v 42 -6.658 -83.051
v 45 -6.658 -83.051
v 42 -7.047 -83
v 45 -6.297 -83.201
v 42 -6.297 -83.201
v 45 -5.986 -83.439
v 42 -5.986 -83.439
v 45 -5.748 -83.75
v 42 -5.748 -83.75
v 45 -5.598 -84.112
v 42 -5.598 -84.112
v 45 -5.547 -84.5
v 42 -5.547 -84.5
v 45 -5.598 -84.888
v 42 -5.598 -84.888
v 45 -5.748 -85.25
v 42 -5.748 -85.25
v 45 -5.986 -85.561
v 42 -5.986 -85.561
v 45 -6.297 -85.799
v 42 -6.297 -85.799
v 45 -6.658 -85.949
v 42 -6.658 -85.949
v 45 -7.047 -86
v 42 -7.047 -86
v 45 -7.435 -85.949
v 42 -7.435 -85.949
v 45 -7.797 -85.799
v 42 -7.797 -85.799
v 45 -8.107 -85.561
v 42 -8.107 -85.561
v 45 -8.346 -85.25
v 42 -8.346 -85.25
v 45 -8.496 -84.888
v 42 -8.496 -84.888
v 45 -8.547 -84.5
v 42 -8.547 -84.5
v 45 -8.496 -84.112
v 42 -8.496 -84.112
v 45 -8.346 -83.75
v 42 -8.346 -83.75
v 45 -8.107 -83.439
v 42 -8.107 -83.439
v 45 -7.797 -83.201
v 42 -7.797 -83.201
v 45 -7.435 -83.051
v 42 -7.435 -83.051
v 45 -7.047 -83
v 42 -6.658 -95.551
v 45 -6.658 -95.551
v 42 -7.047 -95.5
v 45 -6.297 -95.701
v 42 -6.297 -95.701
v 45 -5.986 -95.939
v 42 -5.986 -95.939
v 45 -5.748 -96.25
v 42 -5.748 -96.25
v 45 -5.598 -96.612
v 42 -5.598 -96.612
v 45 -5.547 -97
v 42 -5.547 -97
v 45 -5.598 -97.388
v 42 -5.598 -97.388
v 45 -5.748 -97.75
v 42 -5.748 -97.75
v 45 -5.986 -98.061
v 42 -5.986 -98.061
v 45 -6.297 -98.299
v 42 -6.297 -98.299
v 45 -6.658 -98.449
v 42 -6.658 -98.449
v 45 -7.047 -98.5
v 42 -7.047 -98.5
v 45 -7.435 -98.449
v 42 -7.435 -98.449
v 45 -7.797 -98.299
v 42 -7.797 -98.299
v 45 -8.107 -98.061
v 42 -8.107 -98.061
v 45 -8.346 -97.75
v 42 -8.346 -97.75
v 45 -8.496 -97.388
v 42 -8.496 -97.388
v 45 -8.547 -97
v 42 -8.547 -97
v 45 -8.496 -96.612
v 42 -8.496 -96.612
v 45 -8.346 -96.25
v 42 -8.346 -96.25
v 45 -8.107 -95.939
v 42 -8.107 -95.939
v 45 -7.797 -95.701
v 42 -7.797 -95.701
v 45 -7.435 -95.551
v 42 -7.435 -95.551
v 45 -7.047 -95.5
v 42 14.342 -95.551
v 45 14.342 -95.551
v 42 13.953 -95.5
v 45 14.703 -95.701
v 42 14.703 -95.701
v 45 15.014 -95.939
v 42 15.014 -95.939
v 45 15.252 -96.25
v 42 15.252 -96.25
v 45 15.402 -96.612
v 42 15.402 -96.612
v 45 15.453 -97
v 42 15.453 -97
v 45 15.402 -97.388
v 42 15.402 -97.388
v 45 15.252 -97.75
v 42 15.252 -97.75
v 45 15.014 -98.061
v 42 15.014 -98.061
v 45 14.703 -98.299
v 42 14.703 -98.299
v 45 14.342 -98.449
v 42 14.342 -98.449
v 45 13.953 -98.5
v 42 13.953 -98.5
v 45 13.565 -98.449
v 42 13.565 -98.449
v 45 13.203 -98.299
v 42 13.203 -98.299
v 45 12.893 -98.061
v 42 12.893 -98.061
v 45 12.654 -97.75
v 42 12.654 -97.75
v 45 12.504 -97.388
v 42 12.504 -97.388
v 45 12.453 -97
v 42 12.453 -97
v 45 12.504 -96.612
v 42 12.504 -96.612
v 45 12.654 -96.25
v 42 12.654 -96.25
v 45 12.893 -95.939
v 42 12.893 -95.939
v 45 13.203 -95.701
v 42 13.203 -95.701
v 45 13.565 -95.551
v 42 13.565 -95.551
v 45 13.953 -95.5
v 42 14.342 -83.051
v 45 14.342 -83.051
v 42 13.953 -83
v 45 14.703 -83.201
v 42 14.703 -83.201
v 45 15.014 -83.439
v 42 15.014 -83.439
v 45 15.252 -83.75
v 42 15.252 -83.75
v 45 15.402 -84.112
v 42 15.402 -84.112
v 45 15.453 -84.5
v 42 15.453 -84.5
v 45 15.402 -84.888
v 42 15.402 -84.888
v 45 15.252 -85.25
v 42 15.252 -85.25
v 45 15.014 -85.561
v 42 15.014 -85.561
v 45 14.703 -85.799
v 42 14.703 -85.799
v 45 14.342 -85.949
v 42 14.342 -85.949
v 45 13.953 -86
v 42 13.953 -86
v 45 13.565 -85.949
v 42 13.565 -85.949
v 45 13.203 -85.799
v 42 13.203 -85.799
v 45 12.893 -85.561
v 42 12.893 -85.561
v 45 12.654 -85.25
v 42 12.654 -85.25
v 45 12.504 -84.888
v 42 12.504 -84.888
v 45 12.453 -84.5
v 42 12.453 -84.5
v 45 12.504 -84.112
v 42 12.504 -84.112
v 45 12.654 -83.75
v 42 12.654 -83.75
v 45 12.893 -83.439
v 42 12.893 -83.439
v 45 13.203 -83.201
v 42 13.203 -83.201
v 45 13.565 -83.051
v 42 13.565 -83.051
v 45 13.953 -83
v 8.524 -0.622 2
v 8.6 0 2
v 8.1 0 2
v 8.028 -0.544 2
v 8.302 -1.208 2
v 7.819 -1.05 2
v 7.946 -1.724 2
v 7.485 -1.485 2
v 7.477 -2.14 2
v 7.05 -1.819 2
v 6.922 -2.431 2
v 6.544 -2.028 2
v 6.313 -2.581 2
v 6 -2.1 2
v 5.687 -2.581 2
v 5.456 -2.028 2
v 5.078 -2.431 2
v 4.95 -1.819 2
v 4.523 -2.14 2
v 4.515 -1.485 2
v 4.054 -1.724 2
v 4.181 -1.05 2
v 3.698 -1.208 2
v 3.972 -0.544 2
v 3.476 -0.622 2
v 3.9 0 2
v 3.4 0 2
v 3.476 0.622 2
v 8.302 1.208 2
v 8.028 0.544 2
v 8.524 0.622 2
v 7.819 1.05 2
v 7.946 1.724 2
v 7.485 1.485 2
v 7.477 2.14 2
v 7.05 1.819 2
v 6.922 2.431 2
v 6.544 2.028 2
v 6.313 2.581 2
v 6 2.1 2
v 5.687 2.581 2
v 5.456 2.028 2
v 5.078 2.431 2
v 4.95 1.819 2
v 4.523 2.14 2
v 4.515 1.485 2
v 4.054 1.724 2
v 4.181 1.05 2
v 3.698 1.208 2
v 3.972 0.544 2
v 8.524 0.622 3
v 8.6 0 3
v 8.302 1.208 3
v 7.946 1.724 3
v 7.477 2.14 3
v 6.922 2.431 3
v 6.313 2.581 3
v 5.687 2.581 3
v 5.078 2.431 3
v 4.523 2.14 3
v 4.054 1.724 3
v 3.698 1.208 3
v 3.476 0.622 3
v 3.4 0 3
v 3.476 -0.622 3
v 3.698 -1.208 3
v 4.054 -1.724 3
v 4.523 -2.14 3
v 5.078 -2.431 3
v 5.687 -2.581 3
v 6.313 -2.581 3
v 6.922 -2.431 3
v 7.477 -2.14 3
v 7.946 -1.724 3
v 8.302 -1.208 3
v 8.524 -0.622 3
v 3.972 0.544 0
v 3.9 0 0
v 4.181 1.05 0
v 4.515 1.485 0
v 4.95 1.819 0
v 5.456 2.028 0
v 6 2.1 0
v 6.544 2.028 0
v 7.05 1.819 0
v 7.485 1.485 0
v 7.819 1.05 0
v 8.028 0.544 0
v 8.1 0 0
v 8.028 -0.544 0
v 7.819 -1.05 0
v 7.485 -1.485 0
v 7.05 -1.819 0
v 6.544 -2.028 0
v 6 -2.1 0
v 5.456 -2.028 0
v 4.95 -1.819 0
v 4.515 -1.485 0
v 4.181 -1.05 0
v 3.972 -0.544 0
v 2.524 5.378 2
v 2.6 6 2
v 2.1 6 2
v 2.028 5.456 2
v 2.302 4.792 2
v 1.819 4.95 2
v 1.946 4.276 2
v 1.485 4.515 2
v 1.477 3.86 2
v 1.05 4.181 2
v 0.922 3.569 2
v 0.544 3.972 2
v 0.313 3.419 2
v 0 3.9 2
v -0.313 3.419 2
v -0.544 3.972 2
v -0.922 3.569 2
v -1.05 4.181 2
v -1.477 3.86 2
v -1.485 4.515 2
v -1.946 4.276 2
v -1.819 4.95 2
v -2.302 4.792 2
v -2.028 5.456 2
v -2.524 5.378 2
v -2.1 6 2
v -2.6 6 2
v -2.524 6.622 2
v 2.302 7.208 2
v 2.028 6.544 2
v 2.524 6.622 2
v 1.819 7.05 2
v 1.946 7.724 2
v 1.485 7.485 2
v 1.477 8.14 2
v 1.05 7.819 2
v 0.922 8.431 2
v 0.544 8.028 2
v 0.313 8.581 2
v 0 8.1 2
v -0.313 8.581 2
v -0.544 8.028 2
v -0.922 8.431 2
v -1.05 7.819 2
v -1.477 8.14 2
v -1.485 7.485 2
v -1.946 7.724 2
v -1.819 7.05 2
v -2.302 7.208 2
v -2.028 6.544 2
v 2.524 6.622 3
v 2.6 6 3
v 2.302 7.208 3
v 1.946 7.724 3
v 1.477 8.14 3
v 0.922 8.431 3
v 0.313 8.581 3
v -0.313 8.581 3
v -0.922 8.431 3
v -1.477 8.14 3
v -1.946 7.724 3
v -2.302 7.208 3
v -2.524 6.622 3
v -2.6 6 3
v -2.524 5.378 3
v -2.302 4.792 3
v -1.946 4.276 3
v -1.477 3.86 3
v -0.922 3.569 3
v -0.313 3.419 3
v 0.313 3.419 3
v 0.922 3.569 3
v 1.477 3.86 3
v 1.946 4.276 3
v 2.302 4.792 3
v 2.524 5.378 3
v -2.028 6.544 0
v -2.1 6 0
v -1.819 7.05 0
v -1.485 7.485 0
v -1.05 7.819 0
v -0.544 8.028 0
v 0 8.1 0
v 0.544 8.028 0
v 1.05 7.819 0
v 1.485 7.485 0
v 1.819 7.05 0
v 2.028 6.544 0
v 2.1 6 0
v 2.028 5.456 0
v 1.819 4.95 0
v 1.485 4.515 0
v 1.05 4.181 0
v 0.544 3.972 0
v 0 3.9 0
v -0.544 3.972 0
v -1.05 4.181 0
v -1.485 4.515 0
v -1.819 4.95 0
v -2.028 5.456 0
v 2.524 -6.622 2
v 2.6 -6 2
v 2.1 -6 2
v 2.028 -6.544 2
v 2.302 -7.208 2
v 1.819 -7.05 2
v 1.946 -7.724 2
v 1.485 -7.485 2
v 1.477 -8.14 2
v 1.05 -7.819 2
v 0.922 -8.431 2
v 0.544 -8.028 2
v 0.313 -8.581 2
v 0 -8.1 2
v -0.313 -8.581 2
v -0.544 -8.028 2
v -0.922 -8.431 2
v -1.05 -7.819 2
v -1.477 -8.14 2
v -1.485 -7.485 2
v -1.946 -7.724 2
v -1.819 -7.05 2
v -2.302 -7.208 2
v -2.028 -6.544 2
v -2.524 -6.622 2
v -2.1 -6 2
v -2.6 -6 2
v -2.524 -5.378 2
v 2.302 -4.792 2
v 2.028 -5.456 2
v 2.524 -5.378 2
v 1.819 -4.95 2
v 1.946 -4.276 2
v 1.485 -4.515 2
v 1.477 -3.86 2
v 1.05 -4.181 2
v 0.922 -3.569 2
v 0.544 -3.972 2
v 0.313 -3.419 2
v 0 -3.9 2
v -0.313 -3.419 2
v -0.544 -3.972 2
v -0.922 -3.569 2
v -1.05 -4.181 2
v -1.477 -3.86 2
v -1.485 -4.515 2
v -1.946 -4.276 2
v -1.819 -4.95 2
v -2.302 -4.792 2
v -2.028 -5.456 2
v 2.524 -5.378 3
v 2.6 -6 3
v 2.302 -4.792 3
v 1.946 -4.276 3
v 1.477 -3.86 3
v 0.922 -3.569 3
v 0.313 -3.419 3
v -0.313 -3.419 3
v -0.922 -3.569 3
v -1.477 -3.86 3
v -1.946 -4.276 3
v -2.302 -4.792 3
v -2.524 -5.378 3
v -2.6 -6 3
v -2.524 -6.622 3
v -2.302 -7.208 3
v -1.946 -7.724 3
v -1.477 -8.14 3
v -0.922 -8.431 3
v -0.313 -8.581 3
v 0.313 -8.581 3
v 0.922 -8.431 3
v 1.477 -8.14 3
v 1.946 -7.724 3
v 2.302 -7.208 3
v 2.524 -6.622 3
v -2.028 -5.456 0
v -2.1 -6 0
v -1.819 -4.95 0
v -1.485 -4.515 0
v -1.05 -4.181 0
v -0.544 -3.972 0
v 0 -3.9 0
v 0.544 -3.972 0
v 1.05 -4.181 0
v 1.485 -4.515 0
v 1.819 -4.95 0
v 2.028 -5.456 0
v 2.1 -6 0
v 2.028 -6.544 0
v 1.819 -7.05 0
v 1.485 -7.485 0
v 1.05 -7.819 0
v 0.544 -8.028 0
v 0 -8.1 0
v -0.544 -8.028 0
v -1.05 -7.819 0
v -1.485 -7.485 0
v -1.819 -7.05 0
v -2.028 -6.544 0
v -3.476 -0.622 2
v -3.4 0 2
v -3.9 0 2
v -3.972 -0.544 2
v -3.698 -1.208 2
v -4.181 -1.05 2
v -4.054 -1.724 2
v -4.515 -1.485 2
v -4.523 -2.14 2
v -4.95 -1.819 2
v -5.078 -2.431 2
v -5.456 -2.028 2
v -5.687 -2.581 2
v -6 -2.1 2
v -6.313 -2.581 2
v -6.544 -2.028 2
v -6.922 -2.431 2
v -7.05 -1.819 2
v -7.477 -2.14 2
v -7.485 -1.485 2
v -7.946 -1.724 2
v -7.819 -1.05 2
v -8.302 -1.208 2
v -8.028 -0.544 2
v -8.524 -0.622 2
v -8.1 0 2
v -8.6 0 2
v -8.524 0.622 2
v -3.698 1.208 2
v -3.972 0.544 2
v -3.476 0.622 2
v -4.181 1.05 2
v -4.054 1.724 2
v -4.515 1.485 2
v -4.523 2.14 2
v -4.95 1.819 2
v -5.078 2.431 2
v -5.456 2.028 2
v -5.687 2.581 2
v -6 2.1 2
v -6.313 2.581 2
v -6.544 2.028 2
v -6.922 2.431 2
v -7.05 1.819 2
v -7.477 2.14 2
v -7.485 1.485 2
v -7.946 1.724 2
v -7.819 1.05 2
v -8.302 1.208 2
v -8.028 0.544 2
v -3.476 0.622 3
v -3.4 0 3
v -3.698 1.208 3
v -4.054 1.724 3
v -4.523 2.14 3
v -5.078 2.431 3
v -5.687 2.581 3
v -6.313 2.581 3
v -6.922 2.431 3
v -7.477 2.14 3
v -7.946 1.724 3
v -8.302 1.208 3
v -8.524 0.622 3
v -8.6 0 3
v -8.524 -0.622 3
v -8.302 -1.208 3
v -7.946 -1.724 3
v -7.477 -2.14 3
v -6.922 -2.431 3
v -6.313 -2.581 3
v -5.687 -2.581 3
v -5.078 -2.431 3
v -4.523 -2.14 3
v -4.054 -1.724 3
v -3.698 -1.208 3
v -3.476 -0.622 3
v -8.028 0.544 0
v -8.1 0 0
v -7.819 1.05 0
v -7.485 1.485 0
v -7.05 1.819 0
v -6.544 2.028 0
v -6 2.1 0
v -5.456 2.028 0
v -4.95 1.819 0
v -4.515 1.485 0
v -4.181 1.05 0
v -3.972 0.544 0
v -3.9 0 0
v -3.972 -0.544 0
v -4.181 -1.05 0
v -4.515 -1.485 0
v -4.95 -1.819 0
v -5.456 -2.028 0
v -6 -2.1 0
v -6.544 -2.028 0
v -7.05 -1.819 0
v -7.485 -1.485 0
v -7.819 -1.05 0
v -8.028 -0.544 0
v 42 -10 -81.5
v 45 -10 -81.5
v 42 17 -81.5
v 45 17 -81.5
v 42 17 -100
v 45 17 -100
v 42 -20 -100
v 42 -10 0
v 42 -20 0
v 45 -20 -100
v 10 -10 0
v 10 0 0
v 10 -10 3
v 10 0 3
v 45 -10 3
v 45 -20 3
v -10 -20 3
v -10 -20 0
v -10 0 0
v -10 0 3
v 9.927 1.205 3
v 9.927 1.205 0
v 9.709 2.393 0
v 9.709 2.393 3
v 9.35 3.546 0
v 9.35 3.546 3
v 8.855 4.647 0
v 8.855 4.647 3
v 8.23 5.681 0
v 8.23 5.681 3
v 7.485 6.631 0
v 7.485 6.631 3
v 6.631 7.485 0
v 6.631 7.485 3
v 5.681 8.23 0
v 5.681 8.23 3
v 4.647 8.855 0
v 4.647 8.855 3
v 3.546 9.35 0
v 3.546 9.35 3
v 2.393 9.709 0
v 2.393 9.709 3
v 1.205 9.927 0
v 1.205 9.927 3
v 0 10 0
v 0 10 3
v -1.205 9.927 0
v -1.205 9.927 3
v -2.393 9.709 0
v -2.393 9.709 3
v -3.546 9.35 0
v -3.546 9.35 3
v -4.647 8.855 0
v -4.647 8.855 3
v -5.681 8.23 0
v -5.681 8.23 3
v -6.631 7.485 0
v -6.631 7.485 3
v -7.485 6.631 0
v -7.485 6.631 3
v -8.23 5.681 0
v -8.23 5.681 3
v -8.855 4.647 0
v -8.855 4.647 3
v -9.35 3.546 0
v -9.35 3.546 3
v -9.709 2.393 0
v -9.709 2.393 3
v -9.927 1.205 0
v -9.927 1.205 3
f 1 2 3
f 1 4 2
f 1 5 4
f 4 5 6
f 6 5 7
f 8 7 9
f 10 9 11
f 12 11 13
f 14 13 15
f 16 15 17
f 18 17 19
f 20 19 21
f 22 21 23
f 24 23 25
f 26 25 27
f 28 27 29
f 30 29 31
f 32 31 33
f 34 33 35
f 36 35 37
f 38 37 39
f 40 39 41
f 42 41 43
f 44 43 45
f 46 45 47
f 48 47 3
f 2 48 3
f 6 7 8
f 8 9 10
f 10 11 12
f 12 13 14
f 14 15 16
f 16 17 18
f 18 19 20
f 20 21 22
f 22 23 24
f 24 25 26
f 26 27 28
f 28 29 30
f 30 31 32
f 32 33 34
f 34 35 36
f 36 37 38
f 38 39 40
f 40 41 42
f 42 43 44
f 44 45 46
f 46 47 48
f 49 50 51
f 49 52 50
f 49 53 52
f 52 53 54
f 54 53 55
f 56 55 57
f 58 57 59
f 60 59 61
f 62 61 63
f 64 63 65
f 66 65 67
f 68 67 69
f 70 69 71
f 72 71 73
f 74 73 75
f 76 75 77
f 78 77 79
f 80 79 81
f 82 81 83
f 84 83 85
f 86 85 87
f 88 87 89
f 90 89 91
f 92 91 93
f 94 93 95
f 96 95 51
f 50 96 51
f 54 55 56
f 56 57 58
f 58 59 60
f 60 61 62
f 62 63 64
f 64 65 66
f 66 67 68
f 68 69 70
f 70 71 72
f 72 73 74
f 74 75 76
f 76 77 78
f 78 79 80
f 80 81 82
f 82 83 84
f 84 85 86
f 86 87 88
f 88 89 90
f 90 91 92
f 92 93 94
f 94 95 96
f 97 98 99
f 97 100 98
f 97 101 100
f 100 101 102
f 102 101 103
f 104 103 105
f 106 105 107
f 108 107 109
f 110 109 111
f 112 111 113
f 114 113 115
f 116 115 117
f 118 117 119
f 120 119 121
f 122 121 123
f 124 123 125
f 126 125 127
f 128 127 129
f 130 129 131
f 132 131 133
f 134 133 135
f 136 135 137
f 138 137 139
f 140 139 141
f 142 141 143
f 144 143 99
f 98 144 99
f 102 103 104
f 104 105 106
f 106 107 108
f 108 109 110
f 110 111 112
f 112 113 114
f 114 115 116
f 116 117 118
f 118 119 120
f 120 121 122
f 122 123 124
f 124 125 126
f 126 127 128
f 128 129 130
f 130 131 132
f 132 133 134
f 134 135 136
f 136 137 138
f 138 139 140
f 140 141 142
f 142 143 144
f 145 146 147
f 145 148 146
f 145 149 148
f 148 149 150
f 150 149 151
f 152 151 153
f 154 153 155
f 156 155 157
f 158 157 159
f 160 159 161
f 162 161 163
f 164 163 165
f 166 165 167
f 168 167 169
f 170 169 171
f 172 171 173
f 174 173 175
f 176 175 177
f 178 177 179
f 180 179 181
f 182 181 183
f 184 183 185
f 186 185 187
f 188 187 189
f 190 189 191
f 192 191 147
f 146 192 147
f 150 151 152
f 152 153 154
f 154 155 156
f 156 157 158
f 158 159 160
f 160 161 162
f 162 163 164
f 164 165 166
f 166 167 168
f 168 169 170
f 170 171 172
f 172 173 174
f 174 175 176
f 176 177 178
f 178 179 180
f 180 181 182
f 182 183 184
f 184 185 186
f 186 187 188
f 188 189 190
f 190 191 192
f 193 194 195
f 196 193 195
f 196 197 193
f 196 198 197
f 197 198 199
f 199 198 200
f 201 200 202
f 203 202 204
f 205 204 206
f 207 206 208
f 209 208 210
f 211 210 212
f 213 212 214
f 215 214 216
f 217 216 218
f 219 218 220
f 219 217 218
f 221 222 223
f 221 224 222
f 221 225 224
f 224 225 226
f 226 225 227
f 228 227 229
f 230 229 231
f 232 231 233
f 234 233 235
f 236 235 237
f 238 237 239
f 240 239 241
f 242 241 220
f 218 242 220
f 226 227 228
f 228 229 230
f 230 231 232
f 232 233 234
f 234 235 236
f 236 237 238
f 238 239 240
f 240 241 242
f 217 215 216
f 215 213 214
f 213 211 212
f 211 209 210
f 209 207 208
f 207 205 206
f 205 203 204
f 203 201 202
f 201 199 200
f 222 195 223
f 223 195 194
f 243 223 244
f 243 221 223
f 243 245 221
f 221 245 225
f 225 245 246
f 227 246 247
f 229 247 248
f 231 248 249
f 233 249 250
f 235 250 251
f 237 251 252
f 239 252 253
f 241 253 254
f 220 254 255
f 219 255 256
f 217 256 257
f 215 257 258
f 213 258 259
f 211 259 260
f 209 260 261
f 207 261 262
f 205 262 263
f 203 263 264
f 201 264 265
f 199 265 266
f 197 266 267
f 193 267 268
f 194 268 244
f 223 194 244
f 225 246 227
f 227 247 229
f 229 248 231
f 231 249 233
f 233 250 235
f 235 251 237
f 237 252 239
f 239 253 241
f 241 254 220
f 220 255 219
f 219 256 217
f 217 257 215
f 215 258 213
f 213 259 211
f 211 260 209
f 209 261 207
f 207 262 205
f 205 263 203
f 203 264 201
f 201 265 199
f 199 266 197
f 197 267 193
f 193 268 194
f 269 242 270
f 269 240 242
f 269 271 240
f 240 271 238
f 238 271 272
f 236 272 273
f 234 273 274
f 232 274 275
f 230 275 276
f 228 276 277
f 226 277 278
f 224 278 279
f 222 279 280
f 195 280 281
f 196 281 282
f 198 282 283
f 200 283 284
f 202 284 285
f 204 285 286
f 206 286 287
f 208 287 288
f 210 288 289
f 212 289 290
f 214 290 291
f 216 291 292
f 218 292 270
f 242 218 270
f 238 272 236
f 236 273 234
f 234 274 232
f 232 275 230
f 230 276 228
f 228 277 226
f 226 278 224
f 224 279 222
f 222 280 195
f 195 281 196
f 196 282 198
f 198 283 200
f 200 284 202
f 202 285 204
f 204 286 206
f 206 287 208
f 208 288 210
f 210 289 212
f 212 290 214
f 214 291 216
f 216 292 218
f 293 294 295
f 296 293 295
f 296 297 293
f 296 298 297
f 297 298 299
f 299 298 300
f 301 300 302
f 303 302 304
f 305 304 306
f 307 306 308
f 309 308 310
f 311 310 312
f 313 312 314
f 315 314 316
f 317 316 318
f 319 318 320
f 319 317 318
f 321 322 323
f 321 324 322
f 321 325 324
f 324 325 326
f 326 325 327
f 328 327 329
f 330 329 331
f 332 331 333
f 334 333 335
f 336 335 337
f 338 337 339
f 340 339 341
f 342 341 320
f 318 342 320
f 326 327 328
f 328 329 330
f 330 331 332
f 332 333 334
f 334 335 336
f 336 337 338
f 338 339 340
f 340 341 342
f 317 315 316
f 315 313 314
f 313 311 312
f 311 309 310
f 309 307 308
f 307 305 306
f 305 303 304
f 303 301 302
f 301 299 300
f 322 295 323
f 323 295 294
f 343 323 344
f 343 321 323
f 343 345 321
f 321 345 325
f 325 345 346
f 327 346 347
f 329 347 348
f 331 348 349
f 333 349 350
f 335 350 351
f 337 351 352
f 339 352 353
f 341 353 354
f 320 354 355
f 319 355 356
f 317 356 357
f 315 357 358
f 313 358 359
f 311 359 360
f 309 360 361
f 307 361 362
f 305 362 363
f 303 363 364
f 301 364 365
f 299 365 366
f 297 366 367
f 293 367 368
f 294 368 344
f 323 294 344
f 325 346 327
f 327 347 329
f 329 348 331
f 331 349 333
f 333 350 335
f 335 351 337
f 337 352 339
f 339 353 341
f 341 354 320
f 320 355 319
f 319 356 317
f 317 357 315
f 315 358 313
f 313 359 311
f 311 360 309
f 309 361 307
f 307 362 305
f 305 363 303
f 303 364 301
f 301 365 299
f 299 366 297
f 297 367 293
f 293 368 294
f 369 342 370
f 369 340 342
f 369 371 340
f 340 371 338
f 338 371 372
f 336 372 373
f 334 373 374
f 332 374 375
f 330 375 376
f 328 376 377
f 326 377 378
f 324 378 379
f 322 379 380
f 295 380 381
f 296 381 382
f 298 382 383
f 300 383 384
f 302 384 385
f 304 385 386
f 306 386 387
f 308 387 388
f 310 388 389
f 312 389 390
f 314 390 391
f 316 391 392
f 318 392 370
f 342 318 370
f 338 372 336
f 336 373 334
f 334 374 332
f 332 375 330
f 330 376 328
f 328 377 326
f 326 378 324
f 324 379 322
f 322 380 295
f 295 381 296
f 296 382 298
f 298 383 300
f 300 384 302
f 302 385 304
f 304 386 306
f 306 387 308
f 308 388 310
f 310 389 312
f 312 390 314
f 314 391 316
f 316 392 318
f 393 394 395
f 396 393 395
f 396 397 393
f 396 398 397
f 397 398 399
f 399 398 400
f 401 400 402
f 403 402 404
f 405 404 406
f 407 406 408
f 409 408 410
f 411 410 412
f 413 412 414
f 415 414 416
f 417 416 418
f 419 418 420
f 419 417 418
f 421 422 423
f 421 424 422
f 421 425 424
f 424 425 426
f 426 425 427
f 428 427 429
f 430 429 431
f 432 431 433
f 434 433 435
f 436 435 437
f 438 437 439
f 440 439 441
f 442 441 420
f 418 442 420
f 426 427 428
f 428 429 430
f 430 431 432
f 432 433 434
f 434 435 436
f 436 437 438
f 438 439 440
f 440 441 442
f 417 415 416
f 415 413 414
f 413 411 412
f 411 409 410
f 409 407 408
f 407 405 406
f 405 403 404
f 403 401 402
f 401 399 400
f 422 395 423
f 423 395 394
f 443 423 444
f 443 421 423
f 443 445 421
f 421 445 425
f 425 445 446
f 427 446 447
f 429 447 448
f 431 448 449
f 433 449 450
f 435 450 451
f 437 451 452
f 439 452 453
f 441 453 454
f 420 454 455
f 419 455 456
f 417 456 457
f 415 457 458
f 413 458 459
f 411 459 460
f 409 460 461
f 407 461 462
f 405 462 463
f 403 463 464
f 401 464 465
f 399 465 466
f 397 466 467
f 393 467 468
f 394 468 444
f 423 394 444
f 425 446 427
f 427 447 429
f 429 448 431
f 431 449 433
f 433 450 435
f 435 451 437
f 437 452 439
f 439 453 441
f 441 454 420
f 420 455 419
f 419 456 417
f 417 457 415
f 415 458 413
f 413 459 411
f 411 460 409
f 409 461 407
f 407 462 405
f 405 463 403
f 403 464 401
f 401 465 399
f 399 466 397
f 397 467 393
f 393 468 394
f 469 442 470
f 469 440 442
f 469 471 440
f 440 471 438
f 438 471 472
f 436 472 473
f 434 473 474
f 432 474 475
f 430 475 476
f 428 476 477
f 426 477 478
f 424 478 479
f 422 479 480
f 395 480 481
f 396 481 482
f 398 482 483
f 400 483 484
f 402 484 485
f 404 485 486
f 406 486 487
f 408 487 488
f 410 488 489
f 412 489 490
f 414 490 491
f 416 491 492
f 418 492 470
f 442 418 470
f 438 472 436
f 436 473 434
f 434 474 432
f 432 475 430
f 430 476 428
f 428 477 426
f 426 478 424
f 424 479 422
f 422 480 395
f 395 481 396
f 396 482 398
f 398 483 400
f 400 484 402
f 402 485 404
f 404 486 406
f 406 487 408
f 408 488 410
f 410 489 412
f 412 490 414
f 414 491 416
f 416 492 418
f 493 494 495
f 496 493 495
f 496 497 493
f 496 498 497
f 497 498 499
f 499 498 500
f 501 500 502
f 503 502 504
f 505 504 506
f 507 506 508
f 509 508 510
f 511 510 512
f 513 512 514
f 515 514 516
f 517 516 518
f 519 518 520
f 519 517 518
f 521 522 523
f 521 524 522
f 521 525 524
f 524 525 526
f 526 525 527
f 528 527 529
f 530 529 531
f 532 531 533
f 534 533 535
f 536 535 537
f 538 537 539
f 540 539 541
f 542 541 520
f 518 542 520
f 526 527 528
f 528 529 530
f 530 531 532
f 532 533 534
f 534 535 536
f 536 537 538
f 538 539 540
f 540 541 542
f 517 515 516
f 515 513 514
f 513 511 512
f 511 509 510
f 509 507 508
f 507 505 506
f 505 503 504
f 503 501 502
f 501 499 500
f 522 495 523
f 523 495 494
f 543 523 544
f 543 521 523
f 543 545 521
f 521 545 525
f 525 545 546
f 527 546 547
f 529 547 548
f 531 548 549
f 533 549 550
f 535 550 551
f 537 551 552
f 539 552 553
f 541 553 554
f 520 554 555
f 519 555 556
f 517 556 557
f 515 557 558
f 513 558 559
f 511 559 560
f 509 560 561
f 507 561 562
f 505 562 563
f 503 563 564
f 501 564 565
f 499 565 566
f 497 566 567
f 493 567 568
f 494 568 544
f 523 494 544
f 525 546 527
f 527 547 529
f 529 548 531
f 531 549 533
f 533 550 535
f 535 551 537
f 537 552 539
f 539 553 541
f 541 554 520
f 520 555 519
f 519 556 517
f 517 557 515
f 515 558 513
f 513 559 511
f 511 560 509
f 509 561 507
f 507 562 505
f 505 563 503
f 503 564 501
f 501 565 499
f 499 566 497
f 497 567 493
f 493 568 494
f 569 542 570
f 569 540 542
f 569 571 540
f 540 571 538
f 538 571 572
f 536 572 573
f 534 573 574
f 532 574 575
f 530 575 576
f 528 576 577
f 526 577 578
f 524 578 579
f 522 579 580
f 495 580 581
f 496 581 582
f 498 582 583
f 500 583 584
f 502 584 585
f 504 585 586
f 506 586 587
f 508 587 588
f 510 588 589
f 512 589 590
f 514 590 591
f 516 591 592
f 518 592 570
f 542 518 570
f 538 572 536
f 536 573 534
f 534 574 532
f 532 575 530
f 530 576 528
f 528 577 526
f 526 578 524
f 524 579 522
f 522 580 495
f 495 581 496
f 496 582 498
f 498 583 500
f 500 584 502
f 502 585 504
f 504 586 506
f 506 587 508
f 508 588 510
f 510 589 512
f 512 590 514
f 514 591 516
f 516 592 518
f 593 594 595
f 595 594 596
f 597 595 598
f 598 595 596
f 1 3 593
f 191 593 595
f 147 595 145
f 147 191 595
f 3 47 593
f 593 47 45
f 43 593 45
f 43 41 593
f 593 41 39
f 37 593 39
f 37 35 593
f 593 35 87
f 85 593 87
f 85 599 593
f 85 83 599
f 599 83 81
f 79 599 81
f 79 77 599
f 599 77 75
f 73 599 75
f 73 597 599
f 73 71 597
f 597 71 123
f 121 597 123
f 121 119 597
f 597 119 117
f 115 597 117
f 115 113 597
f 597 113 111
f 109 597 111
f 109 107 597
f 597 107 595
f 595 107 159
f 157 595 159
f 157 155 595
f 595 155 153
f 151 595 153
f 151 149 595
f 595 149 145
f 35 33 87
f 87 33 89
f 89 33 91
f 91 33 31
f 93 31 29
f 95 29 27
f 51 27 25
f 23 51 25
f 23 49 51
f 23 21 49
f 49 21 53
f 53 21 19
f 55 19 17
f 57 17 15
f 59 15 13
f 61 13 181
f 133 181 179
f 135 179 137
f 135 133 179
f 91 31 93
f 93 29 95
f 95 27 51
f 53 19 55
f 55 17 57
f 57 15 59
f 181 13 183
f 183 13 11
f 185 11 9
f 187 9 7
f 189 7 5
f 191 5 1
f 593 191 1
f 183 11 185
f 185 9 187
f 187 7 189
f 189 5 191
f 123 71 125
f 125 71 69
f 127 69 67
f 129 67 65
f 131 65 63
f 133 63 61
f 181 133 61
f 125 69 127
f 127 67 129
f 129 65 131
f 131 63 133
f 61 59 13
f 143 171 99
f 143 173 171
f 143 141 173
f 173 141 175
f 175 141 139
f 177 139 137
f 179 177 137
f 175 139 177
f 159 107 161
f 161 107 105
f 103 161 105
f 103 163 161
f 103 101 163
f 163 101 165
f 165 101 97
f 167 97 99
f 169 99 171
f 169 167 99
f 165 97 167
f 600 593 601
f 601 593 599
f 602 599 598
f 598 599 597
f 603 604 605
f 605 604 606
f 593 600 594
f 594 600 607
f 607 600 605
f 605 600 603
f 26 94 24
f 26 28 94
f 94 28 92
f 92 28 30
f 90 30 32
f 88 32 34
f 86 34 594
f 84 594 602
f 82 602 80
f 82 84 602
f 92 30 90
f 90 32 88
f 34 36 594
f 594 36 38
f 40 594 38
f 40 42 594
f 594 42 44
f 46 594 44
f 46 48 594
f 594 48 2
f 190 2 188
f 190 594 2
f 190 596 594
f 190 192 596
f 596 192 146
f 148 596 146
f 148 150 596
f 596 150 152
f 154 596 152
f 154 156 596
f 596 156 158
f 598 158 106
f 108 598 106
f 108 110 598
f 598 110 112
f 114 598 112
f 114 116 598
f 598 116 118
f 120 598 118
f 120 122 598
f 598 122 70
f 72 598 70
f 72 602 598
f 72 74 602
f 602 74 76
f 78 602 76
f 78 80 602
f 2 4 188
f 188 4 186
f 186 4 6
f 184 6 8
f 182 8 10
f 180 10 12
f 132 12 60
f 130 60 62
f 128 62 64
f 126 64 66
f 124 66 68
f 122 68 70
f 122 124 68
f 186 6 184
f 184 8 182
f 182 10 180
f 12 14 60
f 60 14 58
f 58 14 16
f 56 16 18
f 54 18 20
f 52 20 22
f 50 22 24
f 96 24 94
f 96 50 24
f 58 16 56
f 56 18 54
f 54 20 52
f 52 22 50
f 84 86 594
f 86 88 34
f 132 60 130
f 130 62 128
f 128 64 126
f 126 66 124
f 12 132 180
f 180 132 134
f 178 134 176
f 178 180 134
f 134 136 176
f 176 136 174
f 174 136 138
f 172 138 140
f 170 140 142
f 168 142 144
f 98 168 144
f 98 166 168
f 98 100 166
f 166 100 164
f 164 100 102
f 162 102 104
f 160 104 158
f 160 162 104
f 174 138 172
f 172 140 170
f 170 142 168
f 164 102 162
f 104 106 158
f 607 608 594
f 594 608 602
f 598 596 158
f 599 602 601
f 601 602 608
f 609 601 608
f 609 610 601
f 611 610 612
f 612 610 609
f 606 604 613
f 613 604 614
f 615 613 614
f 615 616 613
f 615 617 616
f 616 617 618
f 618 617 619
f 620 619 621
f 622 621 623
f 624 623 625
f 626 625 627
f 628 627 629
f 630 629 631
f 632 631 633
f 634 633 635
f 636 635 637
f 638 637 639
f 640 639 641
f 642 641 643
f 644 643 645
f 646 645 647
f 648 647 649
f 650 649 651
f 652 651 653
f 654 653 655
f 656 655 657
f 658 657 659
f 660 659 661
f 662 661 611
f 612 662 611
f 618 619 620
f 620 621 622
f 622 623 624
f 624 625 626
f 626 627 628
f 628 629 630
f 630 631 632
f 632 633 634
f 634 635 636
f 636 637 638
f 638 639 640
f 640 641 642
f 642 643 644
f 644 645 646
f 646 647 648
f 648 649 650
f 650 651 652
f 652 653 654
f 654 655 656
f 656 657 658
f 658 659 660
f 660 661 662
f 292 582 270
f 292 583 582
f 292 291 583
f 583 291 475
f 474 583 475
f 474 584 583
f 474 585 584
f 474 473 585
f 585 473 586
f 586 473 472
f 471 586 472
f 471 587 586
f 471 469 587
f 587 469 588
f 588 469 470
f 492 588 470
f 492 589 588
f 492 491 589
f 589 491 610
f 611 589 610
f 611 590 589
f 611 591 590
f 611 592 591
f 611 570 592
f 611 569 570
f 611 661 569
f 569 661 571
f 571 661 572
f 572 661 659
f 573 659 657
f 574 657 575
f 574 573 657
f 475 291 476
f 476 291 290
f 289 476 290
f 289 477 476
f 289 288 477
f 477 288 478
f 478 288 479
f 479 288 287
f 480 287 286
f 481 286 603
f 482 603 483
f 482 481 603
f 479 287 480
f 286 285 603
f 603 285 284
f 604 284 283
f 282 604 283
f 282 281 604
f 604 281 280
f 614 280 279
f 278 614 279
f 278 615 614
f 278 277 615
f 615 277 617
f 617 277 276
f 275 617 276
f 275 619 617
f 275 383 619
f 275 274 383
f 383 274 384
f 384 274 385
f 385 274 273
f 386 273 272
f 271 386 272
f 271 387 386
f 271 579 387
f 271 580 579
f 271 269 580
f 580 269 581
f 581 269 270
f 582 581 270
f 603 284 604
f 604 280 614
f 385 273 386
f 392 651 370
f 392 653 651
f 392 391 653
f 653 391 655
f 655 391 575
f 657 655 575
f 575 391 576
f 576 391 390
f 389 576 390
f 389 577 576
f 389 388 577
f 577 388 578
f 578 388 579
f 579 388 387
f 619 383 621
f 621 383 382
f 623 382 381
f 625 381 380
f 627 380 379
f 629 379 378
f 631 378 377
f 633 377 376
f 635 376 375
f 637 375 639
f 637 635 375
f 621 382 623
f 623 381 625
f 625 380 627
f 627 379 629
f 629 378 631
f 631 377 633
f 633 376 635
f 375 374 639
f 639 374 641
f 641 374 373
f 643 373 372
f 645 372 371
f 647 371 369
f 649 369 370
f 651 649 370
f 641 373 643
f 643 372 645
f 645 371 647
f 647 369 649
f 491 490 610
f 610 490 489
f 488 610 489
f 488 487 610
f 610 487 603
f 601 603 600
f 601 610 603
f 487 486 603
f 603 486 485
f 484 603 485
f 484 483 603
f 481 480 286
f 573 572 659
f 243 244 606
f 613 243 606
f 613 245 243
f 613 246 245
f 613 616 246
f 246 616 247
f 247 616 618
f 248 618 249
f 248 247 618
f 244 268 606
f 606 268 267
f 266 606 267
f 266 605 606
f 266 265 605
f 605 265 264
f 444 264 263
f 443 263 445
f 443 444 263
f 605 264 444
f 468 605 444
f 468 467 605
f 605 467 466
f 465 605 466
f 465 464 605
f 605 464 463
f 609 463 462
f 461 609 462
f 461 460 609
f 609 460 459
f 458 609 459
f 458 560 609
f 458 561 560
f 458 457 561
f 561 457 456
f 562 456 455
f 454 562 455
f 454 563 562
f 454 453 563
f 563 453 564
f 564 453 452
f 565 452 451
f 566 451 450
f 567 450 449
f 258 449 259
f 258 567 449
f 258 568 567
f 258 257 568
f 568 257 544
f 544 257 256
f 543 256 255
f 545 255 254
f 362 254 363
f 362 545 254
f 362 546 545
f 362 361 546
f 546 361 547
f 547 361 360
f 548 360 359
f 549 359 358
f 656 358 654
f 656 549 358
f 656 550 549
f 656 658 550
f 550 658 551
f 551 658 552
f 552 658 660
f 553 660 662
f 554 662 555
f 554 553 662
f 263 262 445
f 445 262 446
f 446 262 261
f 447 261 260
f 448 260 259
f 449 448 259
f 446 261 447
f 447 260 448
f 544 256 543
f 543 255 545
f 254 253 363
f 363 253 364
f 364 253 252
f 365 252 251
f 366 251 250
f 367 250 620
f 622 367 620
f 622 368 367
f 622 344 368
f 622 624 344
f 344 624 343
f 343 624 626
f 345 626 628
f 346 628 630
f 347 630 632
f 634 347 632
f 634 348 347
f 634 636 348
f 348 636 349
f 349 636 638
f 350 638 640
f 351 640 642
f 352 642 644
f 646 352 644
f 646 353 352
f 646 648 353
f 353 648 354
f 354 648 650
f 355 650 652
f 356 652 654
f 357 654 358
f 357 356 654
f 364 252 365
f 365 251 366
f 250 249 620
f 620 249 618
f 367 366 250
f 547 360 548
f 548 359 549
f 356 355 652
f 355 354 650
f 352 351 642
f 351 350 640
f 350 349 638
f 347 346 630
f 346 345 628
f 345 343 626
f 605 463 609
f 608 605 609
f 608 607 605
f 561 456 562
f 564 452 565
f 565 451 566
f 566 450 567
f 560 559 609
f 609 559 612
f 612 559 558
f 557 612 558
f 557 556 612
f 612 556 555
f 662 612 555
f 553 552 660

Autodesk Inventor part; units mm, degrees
ref_plane "YZ Plane" through (0, 0, 0) normal (1, 0, 0) x (0, 1, 0)
ref_plane "XZ Plane" through (0, 0, 0) normal (0, 1, 0) x (-1, 0, 0)
ref_plane "XY Plane" through (0, 0, 0) normal (0, 0, 1) x (1, 0, 0)
sketch "Sketch1" plane through (0, 0, 0) normal (0, 0, 1) x (1, 0, 0)
  arc A0 (10, 0) -> (-10, 0) centre (0, 0) ccw
  line L0 (-10, 0) -> (-10, -20)
  line L1 (-10, -20) -> (10, -20)
  line L2 (10, -10) -> (10, 0)
  line L3 (10, -20) -> (45, -20)
  line L4 (45, -20) -> (45, -10)
  line L5 (45, -10) -> (10, -10)
  dimension "d1" = 20
  dimension "d2" = 35
  dimension "d3" = 10
extrude "Extrusion1" add sketch "Sketch1" along normal blind 3
sketch "Sketch2" plane through (0, 0, 0) normal (0, 0, -1) x (-1, 0, 0)
  line L0 (10, -20) -> (-45, -20) projected
  line L1 (-45, -10) -> (-10, -10) projected
  line L2 (-45, -20) -> (-42, -20)
  line L3 (-42, -20) -> (-42, -10)
  line L4 (-42, -10) -> (-45, -10)
  line L5 (-45, -10) -> (-45, -20)
  point P0 (0, 0)
  dimension "d6" = 3
extrude "Extrusion2" add sketch "Sketch2" along normal blind 100
sketch "Sketch3" plane through (45, -20, 3) normal (1, 0, 0) x (0, 0, -1)
  point P0 (3, 20)
sketch "Sketch4" plane through (45, -20, 3) normal (1, 0, 0) x (0, 0, -1)
  point P0 (3, 20)
sketch "Sketch5" plane through (10, -10, 3) normal (0, 1, 0) x (1, 0, 0)
  line L0 (32, 3) -> (32, 103) projected
  line L1 (32, 103) -> (35, 103)
  line L2 (35, 103) -> (35, 84.5)
  line L3 (35, 84.5) -> (32, 84.5)
  line L4 (32, 84.5) -> (32, 103)
  point P0 (-10, 3)
  dimension "d9" = 3
  dimension "d10" = 18.5
extrude "Extrusion3" add sketch "Sketch5" along normal blind 27
sketch "Sketch6" plane through (0, 0, 3) normal (0, 0, 1) x (1, 0, 0)
  point P0 (0, 0)
  point P1 (0, 6)
  point P2 (0, -6)
  point P3 (6, 0)
  point P4 (-6, 0)
hole "Hole1" at (0, 6, 3) at (0, -6, 3) at (6, 0, 3) at (-6, 0, 3) direction (0, 0, -1) diameter 4.2 end through all counterbore diameter 5.2 counterbore depth 1
sketch "Sketch7" plane through (45, -20, 3) normal (1, 0, 0) x (0, 0, -1)
  line L0 (103, 0) -> (103, 37) projected
  point P0 (3, 20)
  point P1 (100, 12.9534)
  point P2 (100, 33.9534)
  point P3 (87.5, 12.9534)
  point P4 (87.5, 33.9534)
hole "Hole2" at (45, -7.0466, -97) at (45, 13.9534, -97) at (45, -7.0466, -84.5) at (45, 13.9534, -84.5) direction (-1, 0, 0) diameter 3 end through all
properties part number "Cam_mount"
